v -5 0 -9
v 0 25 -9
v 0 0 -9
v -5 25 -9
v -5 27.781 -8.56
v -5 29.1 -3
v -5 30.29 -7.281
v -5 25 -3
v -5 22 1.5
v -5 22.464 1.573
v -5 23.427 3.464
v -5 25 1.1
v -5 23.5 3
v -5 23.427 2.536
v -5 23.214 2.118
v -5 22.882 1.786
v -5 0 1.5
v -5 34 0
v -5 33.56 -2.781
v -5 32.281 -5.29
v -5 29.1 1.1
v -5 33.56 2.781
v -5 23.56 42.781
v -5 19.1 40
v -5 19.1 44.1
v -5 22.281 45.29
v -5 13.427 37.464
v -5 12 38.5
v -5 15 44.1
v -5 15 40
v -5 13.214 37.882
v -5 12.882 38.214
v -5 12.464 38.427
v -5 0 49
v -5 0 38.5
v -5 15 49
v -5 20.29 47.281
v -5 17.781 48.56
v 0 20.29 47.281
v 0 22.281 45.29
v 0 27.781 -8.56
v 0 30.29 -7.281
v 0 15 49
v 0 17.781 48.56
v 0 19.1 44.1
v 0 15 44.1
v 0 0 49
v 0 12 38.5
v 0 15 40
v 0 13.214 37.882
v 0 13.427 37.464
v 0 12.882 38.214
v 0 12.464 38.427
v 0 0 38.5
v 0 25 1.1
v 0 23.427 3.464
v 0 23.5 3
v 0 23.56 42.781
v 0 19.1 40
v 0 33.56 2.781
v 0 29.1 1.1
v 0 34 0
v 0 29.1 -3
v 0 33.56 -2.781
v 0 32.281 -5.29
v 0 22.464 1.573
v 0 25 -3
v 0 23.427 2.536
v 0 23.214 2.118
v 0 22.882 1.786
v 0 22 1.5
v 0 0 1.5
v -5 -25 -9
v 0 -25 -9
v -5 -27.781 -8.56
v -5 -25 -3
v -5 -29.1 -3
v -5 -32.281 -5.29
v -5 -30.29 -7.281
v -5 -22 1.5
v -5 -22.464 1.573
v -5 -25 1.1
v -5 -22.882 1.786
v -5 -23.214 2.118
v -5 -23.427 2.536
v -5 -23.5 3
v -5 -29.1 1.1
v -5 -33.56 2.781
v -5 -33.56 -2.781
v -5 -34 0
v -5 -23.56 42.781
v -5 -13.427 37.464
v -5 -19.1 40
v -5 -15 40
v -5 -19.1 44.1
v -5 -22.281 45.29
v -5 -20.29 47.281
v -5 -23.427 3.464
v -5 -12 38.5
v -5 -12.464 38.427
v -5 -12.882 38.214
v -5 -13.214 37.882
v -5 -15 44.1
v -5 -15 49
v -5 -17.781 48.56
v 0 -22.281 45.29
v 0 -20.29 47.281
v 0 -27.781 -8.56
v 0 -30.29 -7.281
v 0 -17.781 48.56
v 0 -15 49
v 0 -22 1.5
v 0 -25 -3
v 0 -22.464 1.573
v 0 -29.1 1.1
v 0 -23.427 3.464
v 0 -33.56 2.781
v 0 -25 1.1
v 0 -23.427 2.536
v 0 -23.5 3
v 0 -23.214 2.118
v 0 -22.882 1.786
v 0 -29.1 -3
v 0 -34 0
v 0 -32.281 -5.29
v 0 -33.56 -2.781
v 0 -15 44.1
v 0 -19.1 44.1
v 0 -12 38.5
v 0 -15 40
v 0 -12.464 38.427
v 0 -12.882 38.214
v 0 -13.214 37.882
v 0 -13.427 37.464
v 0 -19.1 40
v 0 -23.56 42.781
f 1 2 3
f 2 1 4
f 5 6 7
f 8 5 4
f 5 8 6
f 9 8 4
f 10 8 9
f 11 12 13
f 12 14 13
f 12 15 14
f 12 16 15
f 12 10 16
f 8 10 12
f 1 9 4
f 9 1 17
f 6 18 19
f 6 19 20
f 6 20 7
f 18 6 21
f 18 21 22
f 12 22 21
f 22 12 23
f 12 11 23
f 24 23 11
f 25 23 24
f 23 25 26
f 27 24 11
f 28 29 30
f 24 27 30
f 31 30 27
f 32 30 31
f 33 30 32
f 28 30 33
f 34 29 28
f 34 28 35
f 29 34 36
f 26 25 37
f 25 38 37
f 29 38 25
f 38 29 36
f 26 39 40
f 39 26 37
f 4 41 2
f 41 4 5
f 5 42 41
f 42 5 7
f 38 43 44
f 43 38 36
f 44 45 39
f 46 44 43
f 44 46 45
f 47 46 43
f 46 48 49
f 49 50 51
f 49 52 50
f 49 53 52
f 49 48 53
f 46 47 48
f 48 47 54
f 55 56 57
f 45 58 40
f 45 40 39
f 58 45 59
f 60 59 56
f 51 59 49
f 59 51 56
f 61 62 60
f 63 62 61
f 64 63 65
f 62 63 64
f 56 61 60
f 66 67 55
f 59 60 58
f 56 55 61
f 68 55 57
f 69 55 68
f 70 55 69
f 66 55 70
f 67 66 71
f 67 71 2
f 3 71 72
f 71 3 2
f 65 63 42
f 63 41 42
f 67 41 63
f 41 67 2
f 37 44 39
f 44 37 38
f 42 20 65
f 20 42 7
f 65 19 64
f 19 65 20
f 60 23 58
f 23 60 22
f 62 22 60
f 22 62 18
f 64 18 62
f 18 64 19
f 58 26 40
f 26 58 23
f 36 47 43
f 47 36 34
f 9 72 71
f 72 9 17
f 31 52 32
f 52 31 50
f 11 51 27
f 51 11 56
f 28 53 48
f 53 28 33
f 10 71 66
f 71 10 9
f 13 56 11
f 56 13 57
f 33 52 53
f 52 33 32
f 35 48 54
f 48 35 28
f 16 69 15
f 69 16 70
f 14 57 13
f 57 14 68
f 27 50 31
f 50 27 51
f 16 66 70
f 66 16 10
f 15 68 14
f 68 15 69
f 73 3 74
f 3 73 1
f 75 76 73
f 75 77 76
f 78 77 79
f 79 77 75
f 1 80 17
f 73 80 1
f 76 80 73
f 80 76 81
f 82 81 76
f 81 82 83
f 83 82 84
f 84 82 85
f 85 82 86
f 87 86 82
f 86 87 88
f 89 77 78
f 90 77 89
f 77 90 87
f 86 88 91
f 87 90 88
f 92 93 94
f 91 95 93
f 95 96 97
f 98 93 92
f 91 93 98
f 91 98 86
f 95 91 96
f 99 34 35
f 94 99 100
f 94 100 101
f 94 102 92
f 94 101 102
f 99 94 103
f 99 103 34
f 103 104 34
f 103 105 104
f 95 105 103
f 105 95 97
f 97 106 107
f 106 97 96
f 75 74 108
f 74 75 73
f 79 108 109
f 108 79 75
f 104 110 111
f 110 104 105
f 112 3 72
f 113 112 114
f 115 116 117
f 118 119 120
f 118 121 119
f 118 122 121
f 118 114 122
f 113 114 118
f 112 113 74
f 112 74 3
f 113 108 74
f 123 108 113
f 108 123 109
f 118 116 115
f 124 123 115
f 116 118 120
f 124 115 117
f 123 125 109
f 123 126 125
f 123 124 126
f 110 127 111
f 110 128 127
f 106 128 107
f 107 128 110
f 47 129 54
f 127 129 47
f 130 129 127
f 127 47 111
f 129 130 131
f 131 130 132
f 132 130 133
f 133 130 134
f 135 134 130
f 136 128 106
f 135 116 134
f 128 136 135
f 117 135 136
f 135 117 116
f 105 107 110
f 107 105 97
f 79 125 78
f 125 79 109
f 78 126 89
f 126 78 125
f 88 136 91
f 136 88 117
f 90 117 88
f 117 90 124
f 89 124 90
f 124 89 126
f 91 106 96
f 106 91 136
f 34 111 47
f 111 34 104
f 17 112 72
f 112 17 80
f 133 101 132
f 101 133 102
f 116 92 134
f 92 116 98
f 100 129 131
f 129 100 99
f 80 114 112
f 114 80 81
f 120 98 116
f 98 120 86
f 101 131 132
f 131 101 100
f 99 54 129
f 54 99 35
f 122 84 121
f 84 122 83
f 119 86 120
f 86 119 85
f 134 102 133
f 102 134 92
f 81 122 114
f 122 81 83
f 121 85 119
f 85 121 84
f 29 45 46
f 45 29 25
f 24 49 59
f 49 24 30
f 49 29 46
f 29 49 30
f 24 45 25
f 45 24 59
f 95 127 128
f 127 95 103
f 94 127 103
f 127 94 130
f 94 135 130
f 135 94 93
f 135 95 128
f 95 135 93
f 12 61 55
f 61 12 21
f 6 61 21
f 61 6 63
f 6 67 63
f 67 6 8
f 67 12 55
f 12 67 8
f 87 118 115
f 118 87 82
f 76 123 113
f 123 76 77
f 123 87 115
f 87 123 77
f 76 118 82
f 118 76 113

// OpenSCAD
t = 5;

rx = 100;
rdy = 4.1;
roy = 30;
royl = 50;

p0 = [0,0,18];
p1 = [0,25,18];
p2 = [40,15,18];
p3 = [40,0,18];

k = 12;


module rails(oz=2) {
    
  translate([-rx/2,roy/2,oz]) cube([rx,rdy,rdy]);
  mirror([0,1,0]){
    translate([-rx/2,roy/2,oz]) cube([rx,rdy,rdy]);
  }
    
}

module railsLow(oz=2) {
    
  translate([-rx/2,royl/2,oz]) cube([rx,rdy,rdy]);
  mirror([0,1,0]){
    translate([-rx/2,royl/2,oz]) cube([rx,rdy,rdy]);
  }
    
}


module span() {
difference(){
  hull(){
    translate([p0[0],p0[1],0])cylinder(r=p0[2]/2, h=t, $fn=20);
    translate([p1[0],p1[1],0])cylinder(r=p1[2]/2, h=t, $fn=20);
    translate([p2[0],p2[1],0])cylinder(r=p2[2]/2, h=t, $fn=20);
    translate([p3[0],p3[1],0])cylinder(r=p3[2]/2, h=t, $fn=20);
      
  }
  
  hull(){
    translate([p0[0]+3,p0[1]-3,-1])cylinder(r=p0[2]/k, h=2*t, $fn=20);
    translate([p1[0]+3,p1[1]-3,-1])cylinder(r=p1[2]/k, h=2*t, $fn=20);
    translate([p2[0]-3,p2[1]-3,-1])cylinder(r=p2[2]/k, h=2*t, $fn=20);
    translate([p3[0]-3,p3[1]-3,-1])cylinder(r=p3[2]/k, h=2*t, $fn=20);
  }

  translate([-120/2,-40,-1])cube([120,40,10]);
}
}


difference() {
rotate([0,-90,0])
union(){
  span();
  mirror([0,1,0])span();
};

translate([0,0,38])rails();
translate([0,0,-5])railsLow();

}
